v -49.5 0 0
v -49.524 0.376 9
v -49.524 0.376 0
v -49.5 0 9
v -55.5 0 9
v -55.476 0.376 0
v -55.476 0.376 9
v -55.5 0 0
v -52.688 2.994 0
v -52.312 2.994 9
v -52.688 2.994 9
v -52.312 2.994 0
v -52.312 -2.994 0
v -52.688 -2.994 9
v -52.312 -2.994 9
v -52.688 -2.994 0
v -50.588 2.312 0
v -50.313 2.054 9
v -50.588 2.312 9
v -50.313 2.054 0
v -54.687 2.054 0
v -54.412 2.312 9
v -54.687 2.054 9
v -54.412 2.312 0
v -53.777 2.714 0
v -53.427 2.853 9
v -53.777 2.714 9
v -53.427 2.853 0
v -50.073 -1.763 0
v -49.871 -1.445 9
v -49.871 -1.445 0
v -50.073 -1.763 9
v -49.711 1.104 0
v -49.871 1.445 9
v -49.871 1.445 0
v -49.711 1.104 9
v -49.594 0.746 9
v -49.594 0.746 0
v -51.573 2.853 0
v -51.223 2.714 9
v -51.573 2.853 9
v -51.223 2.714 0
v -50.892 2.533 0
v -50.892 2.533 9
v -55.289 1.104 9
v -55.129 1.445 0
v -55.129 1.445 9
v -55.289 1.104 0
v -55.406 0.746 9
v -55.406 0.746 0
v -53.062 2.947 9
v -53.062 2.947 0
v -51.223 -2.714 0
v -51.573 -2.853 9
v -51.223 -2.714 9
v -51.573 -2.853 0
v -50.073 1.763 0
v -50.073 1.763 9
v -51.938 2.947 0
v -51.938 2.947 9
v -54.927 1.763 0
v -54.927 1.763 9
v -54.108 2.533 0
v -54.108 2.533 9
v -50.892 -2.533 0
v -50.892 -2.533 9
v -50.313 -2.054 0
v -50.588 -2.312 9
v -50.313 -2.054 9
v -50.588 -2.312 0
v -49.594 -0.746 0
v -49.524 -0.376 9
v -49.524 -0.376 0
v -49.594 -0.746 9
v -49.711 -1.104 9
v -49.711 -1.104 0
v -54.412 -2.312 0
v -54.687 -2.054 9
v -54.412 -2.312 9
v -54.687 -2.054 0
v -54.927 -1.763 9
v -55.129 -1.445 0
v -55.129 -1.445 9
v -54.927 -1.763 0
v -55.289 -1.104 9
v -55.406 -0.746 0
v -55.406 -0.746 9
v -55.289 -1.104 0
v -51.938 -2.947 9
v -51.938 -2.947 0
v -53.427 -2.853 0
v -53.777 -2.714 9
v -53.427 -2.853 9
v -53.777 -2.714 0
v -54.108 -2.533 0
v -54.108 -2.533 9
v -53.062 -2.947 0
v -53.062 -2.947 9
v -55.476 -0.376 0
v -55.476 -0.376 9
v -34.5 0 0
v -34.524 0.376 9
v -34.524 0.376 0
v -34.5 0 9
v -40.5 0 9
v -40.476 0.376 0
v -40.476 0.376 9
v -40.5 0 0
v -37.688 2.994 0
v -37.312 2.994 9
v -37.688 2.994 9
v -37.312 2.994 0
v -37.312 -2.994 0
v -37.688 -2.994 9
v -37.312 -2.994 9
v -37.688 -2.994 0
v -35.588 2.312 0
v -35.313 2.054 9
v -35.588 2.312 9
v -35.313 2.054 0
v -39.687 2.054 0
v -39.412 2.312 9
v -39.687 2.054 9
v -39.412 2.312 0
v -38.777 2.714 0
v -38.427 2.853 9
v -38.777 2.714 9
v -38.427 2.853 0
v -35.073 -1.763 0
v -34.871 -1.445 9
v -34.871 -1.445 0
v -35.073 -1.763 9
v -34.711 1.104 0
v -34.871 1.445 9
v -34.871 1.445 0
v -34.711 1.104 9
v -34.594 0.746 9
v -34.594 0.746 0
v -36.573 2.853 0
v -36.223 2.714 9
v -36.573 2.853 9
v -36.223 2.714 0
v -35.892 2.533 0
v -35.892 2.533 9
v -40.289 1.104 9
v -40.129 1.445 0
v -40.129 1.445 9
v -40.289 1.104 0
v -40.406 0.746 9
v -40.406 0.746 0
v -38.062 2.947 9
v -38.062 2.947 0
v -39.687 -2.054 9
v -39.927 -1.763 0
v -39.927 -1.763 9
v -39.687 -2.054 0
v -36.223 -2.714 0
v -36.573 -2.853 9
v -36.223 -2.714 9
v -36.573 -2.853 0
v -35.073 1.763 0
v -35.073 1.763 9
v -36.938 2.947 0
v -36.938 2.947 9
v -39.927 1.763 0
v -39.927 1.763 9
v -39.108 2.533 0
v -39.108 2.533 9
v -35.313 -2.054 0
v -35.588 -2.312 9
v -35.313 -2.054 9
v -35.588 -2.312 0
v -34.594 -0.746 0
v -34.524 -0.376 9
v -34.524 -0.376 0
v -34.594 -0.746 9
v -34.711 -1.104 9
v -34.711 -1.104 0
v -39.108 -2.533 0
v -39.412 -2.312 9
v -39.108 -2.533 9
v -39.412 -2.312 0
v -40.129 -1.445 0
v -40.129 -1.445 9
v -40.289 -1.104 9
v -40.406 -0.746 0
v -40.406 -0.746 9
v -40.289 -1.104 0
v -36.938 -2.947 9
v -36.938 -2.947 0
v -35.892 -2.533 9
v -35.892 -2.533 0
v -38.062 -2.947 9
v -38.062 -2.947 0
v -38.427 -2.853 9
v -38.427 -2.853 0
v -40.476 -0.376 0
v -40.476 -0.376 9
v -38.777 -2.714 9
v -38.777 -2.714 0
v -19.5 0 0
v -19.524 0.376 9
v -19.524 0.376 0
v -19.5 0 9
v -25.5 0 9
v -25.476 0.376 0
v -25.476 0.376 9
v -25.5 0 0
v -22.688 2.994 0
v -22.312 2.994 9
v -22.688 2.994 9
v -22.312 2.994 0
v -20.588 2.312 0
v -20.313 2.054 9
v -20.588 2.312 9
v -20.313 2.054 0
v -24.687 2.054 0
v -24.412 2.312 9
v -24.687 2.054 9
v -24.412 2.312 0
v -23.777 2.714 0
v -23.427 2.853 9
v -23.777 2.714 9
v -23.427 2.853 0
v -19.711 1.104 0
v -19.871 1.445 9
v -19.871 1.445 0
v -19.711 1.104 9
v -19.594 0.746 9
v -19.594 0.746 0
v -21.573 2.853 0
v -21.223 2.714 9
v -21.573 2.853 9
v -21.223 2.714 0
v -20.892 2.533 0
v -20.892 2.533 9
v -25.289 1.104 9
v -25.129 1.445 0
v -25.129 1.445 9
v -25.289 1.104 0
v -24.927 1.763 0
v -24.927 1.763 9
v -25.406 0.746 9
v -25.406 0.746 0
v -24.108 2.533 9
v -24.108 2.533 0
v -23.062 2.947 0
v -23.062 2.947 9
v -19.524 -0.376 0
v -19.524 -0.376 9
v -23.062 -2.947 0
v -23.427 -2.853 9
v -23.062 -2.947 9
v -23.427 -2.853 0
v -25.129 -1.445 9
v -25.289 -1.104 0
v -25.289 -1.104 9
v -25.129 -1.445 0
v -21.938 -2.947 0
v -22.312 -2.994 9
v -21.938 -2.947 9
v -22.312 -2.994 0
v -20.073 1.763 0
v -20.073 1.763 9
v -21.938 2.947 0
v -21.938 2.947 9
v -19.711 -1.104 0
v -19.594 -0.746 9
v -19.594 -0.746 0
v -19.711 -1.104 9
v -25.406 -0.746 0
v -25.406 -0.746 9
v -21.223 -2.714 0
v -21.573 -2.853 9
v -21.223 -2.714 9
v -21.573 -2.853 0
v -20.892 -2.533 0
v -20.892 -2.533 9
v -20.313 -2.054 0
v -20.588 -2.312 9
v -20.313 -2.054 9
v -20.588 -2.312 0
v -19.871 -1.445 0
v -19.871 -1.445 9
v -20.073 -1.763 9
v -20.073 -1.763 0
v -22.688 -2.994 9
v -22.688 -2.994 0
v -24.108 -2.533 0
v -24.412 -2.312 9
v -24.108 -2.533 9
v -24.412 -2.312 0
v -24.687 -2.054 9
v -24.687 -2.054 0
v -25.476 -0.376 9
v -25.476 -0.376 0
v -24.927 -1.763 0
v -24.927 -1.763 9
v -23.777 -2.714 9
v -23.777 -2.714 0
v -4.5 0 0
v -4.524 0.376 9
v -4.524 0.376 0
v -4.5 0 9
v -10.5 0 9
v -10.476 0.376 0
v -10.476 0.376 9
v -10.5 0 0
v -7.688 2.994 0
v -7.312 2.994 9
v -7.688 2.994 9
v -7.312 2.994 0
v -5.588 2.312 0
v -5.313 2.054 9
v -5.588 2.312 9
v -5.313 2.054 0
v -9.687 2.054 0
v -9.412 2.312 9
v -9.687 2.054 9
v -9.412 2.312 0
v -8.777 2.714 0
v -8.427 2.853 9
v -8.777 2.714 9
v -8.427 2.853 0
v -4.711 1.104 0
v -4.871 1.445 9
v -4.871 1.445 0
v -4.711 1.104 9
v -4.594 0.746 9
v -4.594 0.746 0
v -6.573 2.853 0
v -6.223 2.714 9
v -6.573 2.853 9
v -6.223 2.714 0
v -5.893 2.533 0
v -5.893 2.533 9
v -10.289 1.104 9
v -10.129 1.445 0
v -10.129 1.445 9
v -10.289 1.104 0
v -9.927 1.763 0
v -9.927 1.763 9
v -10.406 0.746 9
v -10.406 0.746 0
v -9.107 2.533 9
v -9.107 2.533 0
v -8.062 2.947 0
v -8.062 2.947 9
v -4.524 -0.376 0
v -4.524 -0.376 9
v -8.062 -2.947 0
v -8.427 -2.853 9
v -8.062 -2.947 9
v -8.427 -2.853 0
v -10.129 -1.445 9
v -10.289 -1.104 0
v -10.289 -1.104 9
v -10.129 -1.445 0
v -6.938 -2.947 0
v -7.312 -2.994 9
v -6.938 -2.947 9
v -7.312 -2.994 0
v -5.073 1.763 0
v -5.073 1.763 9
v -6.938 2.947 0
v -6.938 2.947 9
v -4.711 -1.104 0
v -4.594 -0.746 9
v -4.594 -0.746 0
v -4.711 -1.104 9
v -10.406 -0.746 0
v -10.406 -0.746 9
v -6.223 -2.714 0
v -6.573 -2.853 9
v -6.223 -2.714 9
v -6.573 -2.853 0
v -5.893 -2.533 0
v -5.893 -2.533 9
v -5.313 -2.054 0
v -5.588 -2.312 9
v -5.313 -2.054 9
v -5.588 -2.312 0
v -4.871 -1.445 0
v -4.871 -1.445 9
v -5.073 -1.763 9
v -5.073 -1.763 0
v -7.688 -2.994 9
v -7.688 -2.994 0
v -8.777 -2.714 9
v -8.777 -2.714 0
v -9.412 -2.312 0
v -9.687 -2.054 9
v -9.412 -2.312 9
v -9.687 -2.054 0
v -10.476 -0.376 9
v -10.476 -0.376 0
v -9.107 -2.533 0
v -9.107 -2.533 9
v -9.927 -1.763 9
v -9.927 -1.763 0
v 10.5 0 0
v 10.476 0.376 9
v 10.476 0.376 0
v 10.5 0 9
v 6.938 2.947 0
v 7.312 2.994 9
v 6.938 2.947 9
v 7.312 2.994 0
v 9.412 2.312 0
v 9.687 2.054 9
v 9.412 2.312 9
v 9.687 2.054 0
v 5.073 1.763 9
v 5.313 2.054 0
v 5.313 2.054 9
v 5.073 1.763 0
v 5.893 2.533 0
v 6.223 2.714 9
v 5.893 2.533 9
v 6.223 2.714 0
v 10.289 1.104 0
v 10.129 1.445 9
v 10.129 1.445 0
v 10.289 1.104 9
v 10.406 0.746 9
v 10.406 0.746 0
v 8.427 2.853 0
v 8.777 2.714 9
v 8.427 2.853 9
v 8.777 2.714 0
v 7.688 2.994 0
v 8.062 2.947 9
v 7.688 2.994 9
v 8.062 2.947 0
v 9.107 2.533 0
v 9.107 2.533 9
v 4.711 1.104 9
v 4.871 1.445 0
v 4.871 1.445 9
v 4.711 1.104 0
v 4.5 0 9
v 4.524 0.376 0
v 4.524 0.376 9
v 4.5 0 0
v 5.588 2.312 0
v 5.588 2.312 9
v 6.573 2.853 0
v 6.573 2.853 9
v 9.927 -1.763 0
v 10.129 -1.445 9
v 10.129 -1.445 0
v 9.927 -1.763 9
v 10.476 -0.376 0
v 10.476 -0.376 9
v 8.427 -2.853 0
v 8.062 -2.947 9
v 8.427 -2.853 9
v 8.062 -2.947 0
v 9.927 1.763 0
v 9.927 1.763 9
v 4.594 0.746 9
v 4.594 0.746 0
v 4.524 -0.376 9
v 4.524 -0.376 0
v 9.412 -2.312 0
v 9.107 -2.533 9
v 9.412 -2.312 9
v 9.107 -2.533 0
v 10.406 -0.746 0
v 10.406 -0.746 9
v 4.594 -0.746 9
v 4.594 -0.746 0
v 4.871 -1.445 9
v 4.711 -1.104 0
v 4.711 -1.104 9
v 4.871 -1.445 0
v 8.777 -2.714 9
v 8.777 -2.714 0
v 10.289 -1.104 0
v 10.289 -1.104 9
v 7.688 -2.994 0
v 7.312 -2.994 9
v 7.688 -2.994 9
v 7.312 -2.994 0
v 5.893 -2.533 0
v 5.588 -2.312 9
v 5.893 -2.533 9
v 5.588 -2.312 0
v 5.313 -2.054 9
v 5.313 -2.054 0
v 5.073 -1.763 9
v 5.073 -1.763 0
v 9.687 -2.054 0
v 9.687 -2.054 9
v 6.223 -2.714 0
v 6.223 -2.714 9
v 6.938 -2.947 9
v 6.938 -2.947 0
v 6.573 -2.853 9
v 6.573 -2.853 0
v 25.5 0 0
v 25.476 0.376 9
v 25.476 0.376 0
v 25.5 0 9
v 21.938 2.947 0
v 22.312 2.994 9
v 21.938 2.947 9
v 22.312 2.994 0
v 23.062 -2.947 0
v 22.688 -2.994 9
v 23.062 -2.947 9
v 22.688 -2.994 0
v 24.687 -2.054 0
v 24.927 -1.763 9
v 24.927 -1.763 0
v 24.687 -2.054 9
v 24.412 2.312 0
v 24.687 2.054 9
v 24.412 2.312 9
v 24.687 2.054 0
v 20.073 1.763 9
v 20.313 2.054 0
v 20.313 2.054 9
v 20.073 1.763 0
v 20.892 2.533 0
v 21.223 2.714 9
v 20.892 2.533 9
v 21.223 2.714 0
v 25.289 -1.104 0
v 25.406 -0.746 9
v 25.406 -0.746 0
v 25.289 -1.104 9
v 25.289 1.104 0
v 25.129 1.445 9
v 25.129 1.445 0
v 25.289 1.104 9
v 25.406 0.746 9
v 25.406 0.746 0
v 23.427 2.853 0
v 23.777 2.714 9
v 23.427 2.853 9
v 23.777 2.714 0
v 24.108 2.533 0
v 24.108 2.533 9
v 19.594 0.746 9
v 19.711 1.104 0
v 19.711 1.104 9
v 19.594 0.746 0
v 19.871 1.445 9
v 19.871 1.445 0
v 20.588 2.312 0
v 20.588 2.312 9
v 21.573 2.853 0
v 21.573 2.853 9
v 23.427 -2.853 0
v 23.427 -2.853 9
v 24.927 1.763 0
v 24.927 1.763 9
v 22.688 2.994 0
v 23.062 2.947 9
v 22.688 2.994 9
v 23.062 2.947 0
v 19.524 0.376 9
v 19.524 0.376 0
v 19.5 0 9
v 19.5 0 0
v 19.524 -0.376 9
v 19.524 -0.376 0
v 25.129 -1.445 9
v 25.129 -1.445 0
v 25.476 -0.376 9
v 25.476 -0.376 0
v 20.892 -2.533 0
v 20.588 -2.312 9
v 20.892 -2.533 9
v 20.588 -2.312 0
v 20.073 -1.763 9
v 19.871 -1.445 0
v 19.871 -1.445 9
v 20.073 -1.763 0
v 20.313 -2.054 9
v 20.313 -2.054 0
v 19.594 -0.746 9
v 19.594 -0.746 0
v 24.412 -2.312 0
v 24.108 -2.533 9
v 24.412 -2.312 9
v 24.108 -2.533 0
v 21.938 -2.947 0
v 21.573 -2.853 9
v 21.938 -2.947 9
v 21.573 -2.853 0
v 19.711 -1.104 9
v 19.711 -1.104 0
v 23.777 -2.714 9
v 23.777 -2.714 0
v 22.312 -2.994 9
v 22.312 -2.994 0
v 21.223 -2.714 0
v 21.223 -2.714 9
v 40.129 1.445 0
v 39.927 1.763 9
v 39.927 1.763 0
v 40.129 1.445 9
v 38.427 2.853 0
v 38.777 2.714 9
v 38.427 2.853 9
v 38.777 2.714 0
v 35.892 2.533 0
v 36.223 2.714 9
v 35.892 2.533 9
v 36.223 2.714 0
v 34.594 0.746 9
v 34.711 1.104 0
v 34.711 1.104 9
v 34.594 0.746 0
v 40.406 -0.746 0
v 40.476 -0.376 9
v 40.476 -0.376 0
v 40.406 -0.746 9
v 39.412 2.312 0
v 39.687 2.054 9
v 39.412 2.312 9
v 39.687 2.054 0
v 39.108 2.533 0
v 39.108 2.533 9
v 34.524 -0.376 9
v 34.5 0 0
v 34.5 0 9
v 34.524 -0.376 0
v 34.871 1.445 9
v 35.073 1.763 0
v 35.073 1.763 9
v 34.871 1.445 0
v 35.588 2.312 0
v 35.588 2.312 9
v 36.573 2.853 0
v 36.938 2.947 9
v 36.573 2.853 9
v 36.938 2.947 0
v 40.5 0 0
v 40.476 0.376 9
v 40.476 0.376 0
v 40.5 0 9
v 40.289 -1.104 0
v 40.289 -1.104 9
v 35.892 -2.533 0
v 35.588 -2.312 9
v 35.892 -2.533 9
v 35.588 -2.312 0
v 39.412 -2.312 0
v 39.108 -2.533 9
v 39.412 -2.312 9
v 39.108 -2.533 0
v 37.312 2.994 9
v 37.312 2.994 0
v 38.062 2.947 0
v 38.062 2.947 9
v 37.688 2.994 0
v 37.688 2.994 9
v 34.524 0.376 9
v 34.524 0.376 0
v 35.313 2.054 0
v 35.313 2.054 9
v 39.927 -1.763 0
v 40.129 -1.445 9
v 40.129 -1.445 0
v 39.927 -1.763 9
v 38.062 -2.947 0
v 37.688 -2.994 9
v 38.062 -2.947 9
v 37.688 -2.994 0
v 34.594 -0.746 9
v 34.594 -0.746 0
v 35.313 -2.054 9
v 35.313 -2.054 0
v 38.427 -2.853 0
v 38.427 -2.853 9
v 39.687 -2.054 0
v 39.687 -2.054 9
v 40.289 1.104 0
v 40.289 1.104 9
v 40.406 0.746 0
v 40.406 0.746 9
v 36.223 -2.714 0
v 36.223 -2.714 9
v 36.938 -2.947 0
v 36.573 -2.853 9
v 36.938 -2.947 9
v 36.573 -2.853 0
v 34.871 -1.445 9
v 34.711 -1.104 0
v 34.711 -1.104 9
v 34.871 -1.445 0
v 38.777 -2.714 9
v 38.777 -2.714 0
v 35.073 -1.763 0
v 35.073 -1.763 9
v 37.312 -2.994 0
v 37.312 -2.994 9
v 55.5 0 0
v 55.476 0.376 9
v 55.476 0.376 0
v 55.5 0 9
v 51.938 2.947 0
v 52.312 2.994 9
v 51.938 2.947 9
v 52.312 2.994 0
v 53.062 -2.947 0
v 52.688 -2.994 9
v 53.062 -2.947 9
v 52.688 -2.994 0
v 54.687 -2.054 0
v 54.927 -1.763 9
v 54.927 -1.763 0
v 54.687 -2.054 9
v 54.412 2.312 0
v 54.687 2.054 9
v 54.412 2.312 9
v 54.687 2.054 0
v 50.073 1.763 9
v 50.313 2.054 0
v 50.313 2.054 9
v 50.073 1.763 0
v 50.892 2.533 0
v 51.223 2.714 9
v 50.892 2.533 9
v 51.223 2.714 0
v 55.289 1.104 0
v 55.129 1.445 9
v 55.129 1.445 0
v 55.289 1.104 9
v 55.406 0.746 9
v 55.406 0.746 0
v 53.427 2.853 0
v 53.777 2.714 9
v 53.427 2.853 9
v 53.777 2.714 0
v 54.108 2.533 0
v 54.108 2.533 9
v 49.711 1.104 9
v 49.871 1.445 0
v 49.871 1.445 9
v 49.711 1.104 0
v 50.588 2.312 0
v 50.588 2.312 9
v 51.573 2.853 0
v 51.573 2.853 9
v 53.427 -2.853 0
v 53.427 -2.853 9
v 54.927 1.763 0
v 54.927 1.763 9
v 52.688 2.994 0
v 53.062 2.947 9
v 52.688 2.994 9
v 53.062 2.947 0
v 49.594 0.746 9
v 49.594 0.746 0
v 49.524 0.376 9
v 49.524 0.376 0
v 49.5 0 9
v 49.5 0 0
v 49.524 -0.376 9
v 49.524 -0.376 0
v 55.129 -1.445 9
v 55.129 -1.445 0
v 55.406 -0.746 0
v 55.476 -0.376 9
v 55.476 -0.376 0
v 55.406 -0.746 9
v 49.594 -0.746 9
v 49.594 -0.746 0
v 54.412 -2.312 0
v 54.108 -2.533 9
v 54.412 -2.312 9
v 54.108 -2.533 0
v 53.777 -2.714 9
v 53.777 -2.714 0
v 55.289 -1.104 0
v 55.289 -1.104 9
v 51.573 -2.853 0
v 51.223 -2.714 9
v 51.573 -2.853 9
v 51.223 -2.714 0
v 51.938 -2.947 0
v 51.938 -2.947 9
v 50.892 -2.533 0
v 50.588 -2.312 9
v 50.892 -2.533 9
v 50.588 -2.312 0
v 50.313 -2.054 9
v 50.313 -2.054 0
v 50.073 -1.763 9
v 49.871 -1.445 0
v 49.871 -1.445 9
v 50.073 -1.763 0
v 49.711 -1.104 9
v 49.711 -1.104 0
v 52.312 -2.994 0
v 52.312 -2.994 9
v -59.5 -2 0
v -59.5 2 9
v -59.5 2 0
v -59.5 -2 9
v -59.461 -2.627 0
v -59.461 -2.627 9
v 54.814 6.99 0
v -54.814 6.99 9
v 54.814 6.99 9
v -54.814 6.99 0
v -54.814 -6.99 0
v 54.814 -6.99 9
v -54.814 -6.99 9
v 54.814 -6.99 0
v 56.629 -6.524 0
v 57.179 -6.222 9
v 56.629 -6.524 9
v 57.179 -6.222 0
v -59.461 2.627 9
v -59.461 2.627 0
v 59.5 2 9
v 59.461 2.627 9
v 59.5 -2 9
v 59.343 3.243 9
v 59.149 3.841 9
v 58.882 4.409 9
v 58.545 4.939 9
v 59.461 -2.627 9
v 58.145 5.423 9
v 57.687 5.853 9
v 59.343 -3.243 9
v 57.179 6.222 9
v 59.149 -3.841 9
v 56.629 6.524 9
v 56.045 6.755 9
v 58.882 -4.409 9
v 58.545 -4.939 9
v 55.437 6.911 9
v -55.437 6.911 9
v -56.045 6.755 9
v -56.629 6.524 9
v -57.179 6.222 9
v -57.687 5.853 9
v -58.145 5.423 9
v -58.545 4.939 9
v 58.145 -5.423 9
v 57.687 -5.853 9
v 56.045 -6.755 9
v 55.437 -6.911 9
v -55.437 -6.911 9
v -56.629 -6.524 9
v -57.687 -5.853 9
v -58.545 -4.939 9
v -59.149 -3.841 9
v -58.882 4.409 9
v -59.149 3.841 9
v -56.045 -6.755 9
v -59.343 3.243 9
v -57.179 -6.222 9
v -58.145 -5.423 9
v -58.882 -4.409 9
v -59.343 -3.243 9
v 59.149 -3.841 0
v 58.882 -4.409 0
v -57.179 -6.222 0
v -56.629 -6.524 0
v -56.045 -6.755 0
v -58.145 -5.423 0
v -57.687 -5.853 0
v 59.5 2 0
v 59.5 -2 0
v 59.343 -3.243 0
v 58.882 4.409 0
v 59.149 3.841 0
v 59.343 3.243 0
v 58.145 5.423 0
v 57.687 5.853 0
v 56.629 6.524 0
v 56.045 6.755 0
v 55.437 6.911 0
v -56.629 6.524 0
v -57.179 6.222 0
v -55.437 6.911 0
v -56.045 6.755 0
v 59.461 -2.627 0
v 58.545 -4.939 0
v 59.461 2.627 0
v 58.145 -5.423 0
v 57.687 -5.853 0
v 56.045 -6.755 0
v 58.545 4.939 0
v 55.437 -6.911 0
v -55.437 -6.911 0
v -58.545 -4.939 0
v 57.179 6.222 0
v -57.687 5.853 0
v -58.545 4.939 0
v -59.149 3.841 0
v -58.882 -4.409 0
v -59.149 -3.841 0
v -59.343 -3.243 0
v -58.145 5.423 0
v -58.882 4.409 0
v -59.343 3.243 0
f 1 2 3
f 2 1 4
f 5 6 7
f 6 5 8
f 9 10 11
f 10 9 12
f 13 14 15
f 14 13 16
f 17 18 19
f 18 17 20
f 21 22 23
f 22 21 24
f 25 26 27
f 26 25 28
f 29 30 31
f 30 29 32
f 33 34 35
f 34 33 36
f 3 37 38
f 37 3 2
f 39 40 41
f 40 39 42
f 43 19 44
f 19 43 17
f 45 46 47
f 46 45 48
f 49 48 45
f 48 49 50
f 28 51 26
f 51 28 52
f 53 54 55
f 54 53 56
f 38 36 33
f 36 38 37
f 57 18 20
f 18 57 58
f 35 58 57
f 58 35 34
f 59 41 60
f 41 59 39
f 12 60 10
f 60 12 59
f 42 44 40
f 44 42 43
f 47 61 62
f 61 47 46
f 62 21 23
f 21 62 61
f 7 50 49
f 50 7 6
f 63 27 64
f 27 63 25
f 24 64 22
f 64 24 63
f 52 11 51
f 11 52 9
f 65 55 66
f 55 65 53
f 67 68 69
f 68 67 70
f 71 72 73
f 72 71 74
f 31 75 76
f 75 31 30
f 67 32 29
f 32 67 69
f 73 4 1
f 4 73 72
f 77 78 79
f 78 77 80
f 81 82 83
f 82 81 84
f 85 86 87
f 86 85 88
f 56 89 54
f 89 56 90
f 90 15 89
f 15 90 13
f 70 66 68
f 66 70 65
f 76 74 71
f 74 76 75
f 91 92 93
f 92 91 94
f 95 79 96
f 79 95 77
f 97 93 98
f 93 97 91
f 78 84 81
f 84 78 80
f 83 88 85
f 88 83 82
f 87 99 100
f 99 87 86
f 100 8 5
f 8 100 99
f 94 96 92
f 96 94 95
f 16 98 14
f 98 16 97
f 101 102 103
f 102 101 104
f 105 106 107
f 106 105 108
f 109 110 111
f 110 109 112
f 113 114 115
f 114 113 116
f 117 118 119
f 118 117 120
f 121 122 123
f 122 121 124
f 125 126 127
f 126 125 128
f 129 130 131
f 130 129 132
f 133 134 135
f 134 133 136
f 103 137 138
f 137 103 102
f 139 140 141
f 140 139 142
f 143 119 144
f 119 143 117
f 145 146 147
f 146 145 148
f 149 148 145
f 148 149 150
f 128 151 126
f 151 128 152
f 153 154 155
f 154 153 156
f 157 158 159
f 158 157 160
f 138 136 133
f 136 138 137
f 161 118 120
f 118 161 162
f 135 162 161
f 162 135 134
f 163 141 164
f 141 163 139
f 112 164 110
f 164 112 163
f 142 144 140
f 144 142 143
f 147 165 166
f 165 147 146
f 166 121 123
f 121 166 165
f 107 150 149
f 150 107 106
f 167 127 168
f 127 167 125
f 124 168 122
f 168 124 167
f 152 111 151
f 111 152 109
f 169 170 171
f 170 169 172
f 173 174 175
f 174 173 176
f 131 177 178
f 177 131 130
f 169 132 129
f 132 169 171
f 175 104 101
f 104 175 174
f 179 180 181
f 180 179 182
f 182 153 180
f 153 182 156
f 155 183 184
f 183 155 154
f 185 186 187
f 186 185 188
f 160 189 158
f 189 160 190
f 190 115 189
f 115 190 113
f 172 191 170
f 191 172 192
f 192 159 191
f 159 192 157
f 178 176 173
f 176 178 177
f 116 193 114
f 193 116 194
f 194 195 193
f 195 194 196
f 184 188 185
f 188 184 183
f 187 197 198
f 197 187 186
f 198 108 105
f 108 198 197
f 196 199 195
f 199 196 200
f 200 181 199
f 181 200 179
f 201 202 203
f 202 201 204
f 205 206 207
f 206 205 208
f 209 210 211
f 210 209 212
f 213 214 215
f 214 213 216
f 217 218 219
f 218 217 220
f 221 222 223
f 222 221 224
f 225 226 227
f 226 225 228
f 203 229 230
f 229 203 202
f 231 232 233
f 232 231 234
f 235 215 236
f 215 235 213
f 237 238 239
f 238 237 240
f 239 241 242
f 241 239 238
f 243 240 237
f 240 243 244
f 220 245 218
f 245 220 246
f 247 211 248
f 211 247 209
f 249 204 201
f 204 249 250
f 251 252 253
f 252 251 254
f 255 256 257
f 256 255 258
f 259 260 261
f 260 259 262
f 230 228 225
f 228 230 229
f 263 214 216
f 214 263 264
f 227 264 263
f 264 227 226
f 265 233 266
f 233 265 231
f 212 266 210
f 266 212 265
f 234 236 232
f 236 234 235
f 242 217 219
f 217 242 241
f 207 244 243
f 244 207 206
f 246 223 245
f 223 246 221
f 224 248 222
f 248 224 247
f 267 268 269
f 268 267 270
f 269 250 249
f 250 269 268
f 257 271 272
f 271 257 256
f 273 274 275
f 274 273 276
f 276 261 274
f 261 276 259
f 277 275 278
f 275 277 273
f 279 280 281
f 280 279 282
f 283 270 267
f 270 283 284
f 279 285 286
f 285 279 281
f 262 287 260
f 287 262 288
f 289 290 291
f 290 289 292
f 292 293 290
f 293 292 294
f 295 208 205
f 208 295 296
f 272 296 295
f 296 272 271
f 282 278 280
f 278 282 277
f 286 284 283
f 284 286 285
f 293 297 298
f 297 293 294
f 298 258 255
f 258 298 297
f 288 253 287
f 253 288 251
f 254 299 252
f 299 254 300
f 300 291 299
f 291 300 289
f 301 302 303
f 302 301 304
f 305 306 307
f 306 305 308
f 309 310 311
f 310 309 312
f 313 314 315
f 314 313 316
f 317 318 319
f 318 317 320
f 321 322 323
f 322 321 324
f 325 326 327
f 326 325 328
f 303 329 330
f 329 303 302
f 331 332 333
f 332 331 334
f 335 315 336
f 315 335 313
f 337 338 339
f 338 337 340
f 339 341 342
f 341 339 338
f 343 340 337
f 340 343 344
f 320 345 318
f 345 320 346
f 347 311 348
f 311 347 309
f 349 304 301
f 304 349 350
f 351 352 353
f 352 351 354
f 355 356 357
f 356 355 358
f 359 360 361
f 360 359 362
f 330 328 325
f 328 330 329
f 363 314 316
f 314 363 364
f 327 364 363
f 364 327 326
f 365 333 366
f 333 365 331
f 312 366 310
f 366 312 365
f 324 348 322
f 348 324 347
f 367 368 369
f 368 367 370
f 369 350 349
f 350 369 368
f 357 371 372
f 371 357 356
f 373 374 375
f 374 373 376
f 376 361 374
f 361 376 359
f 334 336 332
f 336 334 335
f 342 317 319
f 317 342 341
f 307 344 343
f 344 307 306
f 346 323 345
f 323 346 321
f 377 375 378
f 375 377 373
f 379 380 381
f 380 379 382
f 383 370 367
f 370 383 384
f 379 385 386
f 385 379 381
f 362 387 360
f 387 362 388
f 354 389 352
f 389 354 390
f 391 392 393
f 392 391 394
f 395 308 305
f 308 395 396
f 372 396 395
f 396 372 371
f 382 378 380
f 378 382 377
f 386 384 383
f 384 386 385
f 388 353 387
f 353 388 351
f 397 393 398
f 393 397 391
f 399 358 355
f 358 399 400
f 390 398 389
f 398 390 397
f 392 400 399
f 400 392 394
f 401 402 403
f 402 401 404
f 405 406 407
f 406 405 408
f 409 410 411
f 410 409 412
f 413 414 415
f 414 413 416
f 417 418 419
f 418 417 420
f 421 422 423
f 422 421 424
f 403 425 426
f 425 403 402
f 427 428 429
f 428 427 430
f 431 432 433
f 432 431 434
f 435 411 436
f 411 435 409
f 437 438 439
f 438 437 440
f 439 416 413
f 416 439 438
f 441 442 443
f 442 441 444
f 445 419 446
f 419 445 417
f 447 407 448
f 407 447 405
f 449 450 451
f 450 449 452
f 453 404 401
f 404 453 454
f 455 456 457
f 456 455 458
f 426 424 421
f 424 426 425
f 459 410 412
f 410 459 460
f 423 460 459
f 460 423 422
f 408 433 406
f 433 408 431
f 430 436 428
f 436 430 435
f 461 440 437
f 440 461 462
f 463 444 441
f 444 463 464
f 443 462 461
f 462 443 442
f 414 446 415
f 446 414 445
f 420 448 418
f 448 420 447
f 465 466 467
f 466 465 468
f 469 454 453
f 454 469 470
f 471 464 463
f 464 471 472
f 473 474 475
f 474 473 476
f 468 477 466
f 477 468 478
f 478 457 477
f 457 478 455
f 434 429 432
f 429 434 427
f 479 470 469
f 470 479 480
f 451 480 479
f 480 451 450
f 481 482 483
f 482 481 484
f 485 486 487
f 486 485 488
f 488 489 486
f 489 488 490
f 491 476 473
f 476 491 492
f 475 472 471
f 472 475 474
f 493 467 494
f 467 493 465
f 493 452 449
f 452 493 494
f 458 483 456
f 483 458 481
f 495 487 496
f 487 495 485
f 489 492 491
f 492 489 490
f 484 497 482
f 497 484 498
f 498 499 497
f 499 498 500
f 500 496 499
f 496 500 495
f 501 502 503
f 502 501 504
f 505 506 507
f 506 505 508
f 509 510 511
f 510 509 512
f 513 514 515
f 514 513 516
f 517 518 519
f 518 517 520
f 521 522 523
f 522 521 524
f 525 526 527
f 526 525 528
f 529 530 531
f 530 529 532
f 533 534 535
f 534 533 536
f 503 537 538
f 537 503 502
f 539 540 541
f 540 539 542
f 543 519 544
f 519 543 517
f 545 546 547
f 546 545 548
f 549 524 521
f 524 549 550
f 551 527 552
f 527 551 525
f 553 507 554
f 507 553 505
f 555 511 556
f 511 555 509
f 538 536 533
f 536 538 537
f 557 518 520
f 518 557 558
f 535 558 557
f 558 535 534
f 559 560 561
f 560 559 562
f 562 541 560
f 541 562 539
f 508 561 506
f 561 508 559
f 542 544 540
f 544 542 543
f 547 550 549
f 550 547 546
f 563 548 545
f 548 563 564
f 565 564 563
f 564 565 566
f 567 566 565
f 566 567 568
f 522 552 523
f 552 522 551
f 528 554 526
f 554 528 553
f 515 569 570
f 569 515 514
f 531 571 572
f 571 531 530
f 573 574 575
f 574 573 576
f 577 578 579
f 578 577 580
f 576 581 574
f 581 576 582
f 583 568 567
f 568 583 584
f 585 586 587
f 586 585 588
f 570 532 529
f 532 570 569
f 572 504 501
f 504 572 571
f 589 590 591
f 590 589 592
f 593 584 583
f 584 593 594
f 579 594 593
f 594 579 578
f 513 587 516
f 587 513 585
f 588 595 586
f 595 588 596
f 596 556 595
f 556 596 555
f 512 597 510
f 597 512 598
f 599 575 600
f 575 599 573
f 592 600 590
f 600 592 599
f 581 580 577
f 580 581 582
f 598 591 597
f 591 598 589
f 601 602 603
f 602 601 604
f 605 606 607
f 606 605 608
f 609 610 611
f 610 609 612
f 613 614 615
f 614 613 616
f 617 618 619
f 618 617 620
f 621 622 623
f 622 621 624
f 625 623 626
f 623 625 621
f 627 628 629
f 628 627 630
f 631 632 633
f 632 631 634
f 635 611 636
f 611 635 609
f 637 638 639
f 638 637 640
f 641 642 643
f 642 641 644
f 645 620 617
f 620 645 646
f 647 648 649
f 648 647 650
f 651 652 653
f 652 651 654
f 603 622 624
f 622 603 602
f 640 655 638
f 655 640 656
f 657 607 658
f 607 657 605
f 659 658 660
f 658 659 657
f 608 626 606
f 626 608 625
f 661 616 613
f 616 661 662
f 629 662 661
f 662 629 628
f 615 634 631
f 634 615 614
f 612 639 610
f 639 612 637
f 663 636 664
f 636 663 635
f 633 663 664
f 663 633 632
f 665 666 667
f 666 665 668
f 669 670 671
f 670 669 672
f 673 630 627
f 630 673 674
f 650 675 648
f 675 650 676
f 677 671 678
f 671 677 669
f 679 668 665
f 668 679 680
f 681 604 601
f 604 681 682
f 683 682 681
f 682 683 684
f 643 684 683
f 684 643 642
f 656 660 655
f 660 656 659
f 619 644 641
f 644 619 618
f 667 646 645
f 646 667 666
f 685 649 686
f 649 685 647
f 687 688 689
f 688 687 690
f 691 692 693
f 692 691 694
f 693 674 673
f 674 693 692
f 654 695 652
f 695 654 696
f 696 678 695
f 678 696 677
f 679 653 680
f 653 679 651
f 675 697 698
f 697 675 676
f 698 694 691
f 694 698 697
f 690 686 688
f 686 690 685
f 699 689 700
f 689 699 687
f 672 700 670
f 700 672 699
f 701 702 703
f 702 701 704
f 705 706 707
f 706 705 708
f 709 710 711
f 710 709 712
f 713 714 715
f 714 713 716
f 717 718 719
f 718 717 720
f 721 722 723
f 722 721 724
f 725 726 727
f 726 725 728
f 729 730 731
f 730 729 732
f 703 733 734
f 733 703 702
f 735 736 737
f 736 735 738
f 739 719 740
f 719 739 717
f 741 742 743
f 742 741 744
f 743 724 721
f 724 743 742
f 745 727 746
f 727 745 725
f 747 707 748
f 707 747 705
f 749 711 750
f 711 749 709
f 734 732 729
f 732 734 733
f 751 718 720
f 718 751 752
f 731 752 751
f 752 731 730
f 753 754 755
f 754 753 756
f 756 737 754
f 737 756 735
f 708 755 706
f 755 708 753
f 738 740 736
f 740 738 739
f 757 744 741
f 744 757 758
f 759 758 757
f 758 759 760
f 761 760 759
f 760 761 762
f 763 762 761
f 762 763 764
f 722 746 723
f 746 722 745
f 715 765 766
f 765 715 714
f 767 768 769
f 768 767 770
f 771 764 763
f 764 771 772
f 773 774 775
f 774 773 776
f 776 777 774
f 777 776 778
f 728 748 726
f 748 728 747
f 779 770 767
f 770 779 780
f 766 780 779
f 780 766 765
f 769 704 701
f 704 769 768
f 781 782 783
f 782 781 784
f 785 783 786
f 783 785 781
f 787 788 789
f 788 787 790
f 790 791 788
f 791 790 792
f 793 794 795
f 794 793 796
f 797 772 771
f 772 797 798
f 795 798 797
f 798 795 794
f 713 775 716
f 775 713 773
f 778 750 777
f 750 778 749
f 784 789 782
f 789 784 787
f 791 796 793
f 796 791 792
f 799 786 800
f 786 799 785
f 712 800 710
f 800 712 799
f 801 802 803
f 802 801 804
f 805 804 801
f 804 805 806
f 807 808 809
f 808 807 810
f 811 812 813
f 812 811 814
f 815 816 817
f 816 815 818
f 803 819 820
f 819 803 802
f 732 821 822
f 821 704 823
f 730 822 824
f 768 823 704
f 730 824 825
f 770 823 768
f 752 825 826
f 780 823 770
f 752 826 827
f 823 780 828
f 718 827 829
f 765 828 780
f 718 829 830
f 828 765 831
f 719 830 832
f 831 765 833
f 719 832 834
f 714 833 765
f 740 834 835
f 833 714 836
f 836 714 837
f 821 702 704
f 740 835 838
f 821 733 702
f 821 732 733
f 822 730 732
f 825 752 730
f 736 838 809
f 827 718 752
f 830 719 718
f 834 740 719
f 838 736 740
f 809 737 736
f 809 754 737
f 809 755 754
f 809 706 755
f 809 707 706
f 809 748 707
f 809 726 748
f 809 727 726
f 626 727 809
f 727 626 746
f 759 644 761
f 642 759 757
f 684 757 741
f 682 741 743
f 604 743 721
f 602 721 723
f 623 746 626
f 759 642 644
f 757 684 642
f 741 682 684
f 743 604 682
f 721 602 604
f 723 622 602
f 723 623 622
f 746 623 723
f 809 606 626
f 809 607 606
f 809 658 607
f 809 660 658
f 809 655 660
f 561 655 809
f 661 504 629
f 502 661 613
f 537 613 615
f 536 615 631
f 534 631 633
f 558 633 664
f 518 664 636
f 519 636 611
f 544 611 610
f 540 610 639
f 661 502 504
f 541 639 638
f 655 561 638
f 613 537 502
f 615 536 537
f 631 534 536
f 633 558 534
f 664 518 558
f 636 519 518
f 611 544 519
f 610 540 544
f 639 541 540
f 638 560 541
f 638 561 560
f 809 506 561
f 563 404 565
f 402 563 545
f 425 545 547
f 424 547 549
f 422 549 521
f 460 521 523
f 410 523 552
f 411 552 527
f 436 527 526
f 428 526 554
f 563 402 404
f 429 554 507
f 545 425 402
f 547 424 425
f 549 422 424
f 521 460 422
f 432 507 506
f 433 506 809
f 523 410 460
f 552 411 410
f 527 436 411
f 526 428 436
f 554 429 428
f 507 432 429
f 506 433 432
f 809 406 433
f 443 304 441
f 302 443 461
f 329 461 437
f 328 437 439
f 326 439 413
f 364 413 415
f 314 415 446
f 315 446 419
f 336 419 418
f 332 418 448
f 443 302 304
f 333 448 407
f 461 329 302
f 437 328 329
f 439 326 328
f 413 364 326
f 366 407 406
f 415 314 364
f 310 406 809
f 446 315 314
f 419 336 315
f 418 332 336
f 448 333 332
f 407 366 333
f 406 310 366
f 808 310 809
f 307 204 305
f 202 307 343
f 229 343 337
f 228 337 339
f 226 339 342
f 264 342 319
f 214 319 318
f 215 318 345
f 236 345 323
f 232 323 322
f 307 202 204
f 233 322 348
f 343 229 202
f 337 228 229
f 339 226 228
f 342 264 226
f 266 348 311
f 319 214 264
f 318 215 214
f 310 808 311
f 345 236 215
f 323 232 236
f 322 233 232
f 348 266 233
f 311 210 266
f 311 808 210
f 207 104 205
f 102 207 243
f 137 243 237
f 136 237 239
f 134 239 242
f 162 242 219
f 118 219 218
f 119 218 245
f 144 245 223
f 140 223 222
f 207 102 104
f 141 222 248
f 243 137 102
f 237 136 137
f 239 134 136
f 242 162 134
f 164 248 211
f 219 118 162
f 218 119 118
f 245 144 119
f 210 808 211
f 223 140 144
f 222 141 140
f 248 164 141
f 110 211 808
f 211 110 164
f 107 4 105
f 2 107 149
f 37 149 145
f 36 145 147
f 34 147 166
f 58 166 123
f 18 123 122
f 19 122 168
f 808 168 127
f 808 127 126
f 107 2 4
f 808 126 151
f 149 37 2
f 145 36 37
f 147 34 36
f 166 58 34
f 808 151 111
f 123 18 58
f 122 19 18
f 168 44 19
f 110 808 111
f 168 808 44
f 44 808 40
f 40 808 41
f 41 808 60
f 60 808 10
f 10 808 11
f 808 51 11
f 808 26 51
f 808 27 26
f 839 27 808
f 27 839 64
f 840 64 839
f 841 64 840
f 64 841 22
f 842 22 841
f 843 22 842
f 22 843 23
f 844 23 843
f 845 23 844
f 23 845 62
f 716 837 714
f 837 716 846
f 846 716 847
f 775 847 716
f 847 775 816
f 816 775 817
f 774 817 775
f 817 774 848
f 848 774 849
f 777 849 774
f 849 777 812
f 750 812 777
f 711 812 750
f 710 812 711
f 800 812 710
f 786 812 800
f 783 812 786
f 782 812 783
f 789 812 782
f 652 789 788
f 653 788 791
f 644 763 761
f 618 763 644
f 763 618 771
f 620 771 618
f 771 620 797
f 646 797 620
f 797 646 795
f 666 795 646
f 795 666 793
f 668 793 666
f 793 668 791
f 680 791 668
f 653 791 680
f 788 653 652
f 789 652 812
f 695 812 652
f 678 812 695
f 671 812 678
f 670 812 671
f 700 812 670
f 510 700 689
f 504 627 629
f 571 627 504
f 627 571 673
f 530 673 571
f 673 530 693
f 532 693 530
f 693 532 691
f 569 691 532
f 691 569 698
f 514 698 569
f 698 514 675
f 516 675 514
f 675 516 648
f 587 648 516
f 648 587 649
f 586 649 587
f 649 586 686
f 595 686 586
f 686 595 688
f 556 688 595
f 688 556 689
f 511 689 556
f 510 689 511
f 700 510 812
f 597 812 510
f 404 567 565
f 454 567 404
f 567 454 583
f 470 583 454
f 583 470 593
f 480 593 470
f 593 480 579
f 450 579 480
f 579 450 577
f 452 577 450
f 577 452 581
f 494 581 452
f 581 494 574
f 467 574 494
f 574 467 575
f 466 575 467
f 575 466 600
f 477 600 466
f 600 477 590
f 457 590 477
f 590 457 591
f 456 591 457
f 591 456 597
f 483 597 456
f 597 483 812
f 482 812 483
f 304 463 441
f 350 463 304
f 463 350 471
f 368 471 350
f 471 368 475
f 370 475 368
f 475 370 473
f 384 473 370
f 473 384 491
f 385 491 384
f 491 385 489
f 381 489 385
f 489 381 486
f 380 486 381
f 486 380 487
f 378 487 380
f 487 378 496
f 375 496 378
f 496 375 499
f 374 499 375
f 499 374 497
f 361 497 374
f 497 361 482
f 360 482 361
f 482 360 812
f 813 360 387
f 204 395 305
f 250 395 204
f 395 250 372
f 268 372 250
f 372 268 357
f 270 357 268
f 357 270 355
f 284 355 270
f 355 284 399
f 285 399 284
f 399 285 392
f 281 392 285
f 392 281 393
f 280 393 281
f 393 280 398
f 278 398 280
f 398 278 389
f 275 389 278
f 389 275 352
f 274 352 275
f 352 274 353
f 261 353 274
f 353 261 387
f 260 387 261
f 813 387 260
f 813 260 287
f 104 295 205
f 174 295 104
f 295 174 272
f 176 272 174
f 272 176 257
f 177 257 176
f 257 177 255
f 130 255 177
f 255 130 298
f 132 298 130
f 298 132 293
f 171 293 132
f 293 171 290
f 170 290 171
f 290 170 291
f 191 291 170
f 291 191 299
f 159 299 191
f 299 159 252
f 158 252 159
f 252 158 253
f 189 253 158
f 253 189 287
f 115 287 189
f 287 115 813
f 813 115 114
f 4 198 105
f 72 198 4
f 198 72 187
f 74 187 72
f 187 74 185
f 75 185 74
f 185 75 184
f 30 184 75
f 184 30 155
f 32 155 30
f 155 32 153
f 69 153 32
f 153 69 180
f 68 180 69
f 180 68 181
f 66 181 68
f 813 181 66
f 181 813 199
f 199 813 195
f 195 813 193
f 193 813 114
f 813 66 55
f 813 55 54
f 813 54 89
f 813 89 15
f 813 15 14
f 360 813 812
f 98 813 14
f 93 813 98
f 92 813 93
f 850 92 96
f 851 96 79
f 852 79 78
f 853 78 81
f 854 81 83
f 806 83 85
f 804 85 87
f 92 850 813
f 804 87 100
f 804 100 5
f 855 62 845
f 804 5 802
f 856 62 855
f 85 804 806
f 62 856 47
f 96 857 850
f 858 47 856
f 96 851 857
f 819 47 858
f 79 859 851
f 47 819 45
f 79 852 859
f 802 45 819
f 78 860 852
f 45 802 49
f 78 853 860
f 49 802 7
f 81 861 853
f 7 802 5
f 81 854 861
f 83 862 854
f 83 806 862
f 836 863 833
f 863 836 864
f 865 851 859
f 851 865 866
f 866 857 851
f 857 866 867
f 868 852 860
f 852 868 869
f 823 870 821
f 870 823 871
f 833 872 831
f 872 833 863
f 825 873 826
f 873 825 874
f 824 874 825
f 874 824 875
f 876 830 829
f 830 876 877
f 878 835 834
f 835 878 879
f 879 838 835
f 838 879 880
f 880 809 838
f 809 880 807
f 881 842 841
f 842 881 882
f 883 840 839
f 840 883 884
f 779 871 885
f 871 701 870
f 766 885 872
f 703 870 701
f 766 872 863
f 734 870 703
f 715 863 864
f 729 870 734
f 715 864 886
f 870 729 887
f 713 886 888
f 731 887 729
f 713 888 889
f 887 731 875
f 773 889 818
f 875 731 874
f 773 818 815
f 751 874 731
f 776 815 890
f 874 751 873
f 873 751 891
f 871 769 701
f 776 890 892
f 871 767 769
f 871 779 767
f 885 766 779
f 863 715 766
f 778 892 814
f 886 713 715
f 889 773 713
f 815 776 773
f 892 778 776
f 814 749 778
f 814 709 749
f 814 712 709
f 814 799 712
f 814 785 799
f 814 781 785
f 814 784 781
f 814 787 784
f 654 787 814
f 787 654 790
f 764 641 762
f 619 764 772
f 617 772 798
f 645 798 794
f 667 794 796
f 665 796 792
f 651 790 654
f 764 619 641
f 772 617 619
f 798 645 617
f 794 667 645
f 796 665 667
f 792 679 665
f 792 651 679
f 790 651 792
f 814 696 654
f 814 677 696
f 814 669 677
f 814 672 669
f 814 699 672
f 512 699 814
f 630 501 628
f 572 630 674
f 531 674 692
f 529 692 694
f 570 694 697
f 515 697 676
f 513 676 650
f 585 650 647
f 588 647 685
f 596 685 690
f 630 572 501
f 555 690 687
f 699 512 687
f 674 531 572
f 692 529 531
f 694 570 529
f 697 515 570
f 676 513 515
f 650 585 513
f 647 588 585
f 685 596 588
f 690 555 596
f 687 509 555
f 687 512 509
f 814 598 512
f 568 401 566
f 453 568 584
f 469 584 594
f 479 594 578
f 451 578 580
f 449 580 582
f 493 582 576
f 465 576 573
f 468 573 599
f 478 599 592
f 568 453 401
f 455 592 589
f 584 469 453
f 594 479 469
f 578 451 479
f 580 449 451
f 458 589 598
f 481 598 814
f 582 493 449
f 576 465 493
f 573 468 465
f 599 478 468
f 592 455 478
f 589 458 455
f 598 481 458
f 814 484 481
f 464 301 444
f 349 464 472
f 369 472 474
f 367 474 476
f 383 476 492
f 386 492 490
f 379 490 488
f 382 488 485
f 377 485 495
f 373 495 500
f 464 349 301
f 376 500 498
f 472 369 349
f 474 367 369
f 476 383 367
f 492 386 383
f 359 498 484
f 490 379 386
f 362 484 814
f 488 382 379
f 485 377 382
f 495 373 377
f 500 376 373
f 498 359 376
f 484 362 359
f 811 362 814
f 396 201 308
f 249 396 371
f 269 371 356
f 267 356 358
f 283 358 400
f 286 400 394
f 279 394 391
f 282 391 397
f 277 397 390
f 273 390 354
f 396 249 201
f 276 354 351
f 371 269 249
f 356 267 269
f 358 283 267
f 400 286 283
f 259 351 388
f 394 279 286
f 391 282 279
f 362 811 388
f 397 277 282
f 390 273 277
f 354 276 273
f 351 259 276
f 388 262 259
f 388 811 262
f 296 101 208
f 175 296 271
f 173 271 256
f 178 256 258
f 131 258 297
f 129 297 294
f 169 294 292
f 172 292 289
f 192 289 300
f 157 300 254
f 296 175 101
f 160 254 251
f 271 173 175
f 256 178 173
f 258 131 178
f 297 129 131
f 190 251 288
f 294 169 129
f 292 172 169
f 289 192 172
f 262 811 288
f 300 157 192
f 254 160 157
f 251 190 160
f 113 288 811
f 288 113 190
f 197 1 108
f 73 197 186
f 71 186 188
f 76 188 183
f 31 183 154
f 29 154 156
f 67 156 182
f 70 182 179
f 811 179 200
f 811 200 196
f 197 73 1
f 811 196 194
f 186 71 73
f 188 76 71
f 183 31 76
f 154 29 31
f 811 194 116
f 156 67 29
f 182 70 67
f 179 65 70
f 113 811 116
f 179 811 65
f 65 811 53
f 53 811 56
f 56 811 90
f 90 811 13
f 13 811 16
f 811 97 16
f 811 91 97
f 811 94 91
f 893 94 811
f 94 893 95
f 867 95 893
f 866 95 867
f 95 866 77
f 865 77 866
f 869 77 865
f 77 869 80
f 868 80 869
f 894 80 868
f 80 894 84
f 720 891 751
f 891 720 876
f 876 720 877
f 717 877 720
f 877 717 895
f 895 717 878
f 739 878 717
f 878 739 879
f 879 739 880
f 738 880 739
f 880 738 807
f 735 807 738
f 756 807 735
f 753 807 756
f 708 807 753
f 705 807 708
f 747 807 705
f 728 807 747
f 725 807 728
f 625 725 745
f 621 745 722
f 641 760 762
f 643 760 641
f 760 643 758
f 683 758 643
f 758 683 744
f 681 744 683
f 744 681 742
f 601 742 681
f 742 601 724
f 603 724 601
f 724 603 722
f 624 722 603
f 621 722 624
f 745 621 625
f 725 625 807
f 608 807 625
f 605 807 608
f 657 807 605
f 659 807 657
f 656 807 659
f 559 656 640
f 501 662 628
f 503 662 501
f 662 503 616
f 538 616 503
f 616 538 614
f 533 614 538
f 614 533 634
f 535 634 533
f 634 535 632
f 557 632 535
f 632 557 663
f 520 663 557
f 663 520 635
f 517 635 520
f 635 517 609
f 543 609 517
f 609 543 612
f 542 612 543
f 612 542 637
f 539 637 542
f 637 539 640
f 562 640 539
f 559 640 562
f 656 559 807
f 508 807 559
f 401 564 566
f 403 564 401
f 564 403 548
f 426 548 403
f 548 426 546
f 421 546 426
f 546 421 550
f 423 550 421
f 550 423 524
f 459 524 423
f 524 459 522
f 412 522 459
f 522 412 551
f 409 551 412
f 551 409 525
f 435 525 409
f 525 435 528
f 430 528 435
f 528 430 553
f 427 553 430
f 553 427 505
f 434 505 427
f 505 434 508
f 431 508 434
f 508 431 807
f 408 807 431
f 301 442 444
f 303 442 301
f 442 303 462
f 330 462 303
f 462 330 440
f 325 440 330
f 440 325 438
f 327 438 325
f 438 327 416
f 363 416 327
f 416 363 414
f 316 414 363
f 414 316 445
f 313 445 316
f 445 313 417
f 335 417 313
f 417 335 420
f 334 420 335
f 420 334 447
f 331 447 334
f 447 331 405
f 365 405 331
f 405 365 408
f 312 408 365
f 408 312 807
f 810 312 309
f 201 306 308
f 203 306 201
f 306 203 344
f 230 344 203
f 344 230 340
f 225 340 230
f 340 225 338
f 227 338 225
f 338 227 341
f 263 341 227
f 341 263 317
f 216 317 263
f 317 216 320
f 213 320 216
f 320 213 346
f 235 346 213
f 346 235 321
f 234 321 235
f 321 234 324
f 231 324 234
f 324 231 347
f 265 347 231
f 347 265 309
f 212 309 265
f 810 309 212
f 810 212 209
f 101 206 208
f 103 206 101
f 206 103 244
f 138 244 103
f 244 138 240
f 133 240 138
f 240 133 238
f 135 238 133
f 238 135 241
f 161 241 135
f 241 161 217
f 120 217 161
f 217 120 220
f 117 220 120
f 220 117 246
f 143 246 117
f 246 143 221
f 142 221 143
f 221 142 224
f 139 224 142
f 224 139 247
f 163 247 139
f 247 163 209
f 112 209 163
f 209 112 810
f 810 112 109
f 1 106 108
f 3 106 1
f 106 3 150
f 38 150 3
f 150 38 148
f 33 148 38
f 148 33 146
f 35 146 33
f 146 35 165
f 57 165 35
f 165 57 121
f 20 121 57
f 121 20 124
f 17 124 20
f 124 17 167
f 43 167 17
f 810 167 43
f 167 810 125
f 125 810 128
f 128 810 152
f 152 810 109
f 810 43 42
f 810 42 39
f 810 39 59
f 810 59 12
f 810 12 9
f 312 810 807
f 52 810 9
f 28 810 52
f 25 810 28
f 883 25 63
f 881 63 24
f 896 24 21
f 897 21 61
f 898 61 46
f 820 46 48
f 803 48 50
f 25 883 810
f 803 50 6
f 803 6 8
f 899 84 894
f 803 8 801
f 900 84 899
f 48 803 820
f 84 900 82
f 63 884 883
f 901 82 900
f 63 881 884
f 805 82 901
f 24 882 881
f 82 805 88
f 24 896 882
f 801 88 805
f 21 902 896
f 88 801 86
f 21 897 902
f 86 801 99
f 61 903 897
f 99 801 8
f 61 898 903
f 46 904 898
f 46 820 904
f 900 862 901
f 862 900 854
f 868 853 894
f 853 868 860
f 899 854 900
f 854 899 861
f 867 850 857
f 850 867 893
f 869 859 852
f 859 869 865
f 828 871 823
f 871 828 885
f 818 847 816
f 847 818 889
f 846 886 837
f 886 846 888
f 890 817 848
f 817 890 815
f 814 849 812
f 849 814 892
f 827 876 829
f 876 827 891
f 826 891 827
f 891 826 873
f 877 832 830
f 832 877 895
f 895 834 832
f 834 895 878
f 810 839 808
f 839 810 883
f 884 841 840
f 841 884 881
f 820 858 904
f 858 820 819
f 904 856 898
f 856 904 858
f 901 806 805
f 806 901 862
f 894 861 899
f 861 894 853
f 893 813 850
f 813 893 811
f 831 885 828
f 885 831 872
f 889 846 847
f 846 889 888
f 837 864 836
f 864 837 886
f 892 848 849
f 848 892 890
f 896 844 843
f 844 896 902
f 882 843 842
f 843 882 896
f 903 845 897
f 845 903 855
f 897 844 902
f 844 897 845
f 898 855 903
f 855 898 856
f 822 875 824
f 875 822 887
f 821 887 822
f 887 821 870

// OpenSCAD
$fn = 50;


difference() {
	union() {
		hull() {
			translate(v = [-54.5000000000, 2.0000000000, 0]) {
				cylinder(h = 9, r = 5);
			}
			translate(v = [54.5000000000, 2.0000000000, 0]) {
				cylinder(h = 9, r = 5);
			}
			translate(v = [-54.5000000000, -2.0000000000, 0]) {
				cylinder(h = 9, r = 5);
			}
			translate(v = [54.5000000000, -2.0000000000, 0]) {
				cylinder(h = 9, r = 5);
			}
		}
	}
	union() {
		translate(v = [-52.5000000000, 0.0000000000, 0]) {
			translate(v = [0, 0, -100]) {
				cylinder(h = 200, r = 3.0000000000);
			}
		}
		translate(v = [-37.5000000000, 0.0000000000, 0]) {
			translate(v = [0, 0, -100]) {
				cylinder(h = 200, r = 3.0000000000);
			}
		}
		translate(v = [-22.5000000000, 0.0000000000, 0]) {
			translate(v = [0, 0, -100]) {
				cylinder(h = 200, r = 3.0000000000);
			}
		}
		translate(v = [-7.5000000000, 0.0000000000, 0]) {
			translate(v = [0, 0, -100]) {
				cylinder(h = 200, r = 3.0000000000);
			}
		}
		translate(v = [7.5000000000, 0.0000000000, 0]) {
			translate(v = [0, 0, -100]) {
				cylinder(h = 200, r = 3.0000000000);
			}
		}
		translate(v = [22.5000000000, 0.0000000000, 0]) {
			translate(v = [0, 0, -100]) {
				cylinder(h = 200, r = 3.0000000000);
			}
		}
		translate(v = [37.5000000000, 0.0000000000, 0]) {
			translate(v = [0, 0, -100]) {
				cylinder(h = 200, r = 3.0000000000);
			}
		}
		translate(v = [52.5000000000, 0.0000000000, 0]) {
			translate(v = [0, 0, -100]) {
				cylinder(h = 200, r = 3.0000000000);
			}
		}
	}
}
